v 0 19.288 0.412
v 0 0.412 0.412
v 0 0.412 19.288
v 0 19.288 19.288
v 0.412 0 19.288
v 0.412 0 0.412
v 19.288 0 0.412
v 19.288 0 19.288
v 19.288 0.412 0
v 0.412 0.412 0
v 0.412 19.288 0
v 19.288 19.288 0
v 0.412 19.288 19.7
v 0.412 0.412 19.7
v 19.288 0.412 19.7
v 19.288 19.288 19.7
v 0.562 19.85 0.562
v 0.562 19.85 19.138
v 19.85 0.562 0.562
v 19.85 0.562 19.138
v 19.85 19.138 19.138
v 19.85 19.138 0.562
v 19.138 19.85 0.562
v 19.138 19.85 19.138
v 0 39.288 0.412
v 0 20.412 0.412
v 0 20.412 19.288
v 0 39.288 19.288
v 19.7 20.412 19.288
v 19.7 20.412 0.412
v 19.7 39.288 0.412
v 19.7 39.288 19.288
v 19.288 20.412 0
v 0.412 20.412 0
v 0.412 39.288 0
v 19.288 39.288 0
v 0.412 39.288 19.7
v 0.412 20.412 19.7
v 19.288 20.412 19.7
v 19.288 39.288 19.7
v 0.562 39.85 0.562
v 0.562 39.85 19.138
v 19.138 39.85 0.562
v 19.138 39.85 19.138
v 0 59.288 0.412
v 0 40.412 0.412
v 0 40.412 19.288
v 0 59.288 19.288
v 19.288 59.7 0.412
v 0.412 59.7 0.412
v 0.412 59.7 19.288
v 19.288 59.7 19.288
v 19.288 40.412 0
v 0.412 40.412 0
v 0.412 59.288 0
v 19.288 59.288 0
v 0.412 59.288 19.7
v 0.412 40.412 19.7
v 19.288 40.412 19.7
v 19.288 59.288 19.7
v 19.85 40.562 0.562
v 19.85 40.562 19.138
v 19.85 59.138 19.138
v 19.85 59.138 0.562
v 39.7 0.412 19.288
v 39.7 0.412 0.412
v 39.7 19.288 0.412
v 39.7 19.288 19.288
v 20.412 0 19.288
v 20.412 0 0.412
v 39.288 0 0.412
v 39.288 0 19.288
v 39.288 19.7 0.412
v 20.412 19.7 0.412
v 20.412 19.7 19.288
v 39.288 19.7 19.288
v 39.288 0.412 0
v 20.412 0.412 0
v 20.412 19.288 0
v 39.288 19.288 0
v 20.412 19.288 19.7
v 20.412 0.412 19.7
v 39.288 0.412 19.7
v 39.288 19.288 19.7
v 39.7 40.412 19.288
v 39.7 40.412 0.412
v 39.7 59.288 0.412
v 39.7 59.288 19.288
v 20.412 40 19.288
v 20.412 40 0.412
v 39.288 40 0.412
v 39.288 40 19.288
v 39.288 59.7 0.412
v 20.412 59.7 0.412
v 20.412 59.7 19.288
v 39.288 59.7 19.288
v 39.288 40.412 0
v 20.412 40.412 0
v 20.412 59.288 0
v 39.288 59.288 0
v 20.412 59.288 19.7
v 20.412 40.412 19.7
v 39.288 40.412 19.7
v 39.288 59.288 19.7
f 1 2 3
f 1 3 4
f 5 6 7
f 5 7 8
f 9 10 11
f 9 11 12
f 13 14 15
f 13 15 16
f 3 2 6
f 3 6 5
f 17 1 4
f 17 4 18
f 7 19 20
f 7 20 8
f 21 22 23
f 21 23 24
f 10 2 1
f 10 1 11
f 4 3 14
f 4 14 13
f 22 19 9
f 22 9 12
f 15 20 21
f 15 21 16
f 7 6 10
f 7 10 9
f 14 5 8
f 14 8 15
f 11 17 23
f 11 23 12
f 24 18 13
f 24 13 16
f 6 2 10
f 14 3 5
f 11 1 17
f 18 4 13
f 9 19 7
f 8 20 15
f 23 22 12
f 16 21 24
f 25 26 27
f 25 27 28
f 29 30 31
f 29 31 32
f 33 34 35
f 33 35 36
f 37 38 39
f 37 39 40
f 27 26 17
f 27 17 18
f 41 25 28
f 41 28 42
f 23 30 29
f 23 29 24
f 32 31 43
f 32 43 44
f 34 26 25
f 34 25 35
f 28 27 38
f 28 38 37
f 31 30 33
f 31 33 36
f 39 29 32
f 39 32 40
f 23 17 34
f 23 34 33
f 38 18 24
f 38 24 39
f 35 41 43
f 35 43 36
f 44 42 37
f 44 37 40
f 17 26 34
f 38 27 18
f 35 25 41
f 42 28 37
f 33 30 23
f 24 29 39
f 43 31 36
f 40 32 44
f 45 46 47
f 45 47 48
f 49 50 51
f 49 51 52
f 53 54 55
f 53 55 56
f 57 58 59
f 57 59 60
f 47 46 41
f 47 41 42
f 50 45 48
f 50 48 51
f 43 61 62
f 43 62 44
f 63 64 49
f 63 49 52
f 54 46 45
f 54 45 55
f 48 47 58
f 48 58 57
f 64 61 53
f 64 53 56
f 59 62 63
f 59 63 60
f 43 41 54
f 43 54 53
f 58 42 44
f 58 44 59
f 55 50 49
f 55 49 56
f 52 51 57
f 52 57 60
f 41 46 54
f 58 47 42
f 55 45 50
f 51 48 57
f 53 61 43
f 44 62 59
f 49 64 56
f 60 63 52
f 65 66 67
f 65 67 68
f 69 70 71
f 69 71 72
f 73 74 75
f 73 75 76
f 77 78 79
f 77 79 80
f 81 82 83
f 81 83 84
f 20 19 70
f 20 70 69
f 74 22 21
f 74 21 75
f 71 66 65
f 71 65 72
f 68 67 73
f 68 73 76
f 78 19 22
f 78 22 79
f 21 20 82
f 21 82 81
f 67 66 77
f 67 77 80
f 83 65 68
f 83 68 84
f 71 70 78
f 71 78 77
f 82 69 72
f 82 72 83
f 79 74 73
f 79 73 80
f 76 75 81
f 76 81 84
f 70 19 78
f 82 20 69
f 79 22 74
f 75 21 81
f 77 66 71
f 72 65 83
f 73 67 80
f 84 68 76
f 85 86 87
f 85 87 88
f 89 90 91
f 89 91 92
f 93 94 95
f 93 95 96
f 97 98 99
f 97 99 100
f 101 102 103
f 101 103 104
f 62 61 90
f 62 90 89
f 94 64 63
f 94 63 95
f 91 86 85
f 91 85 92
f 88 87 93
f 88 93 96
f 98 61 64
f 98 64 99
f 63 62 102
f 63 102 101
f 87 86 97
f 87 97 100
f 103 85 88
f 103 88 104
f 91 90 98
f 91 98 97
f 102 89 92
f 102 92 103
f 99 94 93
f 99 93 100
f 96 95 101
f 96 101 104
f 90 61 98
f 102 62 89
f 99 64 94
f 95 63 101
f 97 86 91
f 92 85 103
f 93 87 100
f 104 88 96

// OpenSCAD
// Wongo piece 4: Gate. GPL-3.0.
// 20 mm lattice; 0.15 mm inward surface clearance; 0.5 mm chamfer.
// Mesh is identical to the STL; changing unit scales the complete finished mesh.
unit=20;
scale([unit/20,unit/20,unit/20]) polyhedron(points=[[0,19.28786797,0.41213203],[0,0.41213203,0.41213203],[0,0.41213203,19.28786797],[0,19.28786797,19.28786797],[0.41213203,0,19.28786797],[0.41213203,0,0.41213203],[19.28786797,0,0.41213203],[19.28786797,0,19.28786797],[19.28786797,0.41213203,0],[0.41213203,0.41213203,0],[0.41213203,19.28786797,0],[19.28786797,19.28786797,0],[0.41213203,19.28786797,19.7],[0.41213203,0.41213203,19.7],[19.28786797,0.41213203,19.7],[19.28786797,19.28786797,19.7],[0.56213203,19.85,0.56213203],[0.56213203,19.85,19.13786797],[19.85,0.56213203,0.56213203],[19.85,0.56213203,19.13786797],[19.85,19.13786797,19.13786797],[19.85,19.13786797,0.56213203],[19.13786797,19.85,0.56213203],[19.13786797,19.85,19.13786797],[0,39.28786797,0.41213203],[0,20.41213203,0.41213203],[0,20.41213203,19.28786797],[0,39.28786797,19.28786797],[19.7,20.41213203,19.28786797],[19.7,20.41213203,0.41213203],[19.7,39.28786797,0.41213203],[19.7,39.28786797,19.28786797],[19.28786797,20.41213203,0],[0.41213203,20.41213203,0],[0.41213203,39.28786797,0],[19.28786797,39.28786797,0],[0.41213203,39.28786797,19.7],[0.41213203,20.41213203,19.7],[19.28786797,20.41213203,19.7],[19.28786797,39.28786797,19.7],[0.56213203,39.85,0.56213203],[0.56213203,39.85,19.13786797],[19.13786797,39.85,0.56213203],[19.13786797,39.85,19.13786797],[0,59.28786797,0.41213203],[0,40.41213203,0.41213203],[0,40.41213203,19.28786797],[0,59.28786797,19.28786797],[19.28786797,59.7,0.41213203],[0.41213203,59.7,0.41213203],[0.41213203,59.7,19.28786797],[19.28786797,59.7,19.28786797],[19.28786797,40.41213203,0],[0.41213203,40.41213203,0],[0.41213203,59.28786797,0],[19.28786797,59.28786797,0],[0.41213203,59.28786797,19.7],[0.41213203,40.41213203,19.7],[19.28786797,40.41213203,19.7],[19.28786797,59.28786797,19.7],[19.85,40.56213203,0.56213203],[19.85,40.56213203,19.13786797],[19.85,59.13786797,19.13786797],[19.85,59.13786797,0.56213203],[39.7,0.41213203,19.28786797],[39.7,0.41213203,0.41213203],[39.7,19.28786797,0.41213203],[39.7,19.28786797,19.28786797],[20.41213203,0,19.28786797],[20.41213203,0,0.41213203],[39.28786797,0,0.41213203],[39.28786797,0,19.28786797],[39.28786797,19.7,0.41213203],[20.41213203,19.7,0.41213203],[20.41213203,19.7,19.28786797],[39.28786797,19.7,19.28786797],[39.28786797,0.41213203,0],[20.41213203,0.41213203,0],[20.41213203,19.28786797,0],[39.28786797,19.28786797,0],[20.41213203,19.28786797,19.7],[20.41213203,0.41213203,19.7],[39.28786797,0.41213203,19.7],[39.28786797,19.28786797,19.7],[39.7,40.41213203,19.28786797],[39.7,40.41213203,0.41213203],[39.7,59.28786797,0.41213203],[39.7,59.28786797,19.28786797],[20.41213203,40,19.28786797],[20.41213203,40,0.41213203],[39.28786797,40,0.41213203],[39.28786797,40,19.28786797],[39.28786797,59.7,0.41213203],[20.41213203,59.7,0.41213203],[20.41213203,59.7,19.28786797],[39.28786797,59.7,19.28786797],[39.28786797,40.41213203,0],[20.41213203,40.41213203,0],[20.41213203,59.28786797,0],[39.28786797,59.28786797,0],[20.41213203,59.28786797,19.7],[20.41213203,40.41213203,19.7],[39.28786797,40.41213203,19.7],[39.28786797,59.28786797,19.7]],faces=[[2,1,0],[3,2,0],[6,5,4],[7,6,4],[10,9,8],[11,10,8],[14,13,12],[15,14,12],[5,1,2],[4,5,2],[3,0,16],[17,3,16],[19,18,6],[7,19,6],[22,21,20],[23,22,20],[0,1,9],[10,0,9],[13,2,3],[12,13,3],[8,18,21],[11,8,21],[20,19,14],[15,20,14],[9,5,6],[8,9,6],[7,4,13],[14,7,13],[22,16,10],[11,22,10],[12,17,23],[15,12,23],[9,1,5],[4,2,13],[16,0,10],[12,3,17],[6,18,8],[14,19,7],[11,21,22],[23,20,15],[26,25,24],[27,26,24],[30,29,28],[31,30,28],[34,33,32],[35,34,32],[38,37,36],[39,38,36],[16,25,26],[17,16,26],[27,24,40],[41,27,40],[28,29,22],[23,28,22],[42,30,31],[43,42,31],[24,25,33],[34,24,33],[37,26,27],[36,37,27],[32,29,30],[35,32,30],[31,28,38],[39,31,38],[33,16,22],[32,33,22],[23,17,37],[38,23,37],[42,40,34],[35,42,34],[36,41,43],[39,36,43],[33,25,16],[17,26,37],[40,24,34],[36,27,41],[22,29,32],[38,28,23],[35,30,42],[43,31,39],[46,45,44],[47,46,44],[50,49,48],[51,50,48],[54,53,52],[55,54,52],[58,57,56],[59,58,56],[40,45,46],[41,40,46],[47,44,49],[50,47,49],[61,60,42],[43,61,42],[48,63,62],[51,48,62],[44,45,53],[54,44,53],[57,46,47],[56,57,47],[52,60,63],[55,52,63],[62,61,58],[59,62,58],[53,40,42],[52,53,42],[43,41,57],[58,43,57],[48,49,54],[55,48,54],[56,50,51],[59,56,51],[53,45,40],[41,46,57],[49,44,54],[56,47,50],[42,60,52],[58,61,43],[55,63,48],[51,62,59],[66,65,64],[67,66,64],[70,69,68],[71,70,68],[74,73,72],[75,74,72],[78,77,76],[79,78,76],[82,81,80],[83,82,80],[69,18,19],[68,69,19],[20,21,73],[74,20,73],[64,65,70],[71,64,70],[72,66,67],[75,72,67],[21,18,77],[78,21,77],[81,19,20],[80,81,20],[76,65,66],[79,76,66],[67,64,82],[83,67,82],[77,69,70],[76,77,70],[71,68,81],[82,71,81],[72,73,78],[79,72,78],[80,74,75],[83,80,75],[77,18,69],[68,19,81],[73,21,78],[80,20,74],[70,65,76],[82,64,71],[79,66,72],[75,67,83],[86,85,84],[87,86,84],[90,89,88],[91,90,88],[94,93,92],[95,94,92],[98,97,96],[99,98,96],[102,101,100],[103,102,100],[89,60,61],[88,89,61],[62,63,93],[94,62,93],[84,85,90],[91,84,90],[92,86,87],[95,92,87],[63,60,97],[98,63,97],[101,61,62],[100,101,62],[96,85,86],[99,96,86],[87,84,102],[103,87,102],[97,89,90],[96,97,90],[91,88,101],[102,91,101],[92,93,98],[99,92,98],[100,94,95],[103,100,95],[97,60,89],[88,61,101],[93,63,98],[100,62,94],[90,85,96],[102,84,91],[99,86,92],[95,87,103]],convexity=10);
